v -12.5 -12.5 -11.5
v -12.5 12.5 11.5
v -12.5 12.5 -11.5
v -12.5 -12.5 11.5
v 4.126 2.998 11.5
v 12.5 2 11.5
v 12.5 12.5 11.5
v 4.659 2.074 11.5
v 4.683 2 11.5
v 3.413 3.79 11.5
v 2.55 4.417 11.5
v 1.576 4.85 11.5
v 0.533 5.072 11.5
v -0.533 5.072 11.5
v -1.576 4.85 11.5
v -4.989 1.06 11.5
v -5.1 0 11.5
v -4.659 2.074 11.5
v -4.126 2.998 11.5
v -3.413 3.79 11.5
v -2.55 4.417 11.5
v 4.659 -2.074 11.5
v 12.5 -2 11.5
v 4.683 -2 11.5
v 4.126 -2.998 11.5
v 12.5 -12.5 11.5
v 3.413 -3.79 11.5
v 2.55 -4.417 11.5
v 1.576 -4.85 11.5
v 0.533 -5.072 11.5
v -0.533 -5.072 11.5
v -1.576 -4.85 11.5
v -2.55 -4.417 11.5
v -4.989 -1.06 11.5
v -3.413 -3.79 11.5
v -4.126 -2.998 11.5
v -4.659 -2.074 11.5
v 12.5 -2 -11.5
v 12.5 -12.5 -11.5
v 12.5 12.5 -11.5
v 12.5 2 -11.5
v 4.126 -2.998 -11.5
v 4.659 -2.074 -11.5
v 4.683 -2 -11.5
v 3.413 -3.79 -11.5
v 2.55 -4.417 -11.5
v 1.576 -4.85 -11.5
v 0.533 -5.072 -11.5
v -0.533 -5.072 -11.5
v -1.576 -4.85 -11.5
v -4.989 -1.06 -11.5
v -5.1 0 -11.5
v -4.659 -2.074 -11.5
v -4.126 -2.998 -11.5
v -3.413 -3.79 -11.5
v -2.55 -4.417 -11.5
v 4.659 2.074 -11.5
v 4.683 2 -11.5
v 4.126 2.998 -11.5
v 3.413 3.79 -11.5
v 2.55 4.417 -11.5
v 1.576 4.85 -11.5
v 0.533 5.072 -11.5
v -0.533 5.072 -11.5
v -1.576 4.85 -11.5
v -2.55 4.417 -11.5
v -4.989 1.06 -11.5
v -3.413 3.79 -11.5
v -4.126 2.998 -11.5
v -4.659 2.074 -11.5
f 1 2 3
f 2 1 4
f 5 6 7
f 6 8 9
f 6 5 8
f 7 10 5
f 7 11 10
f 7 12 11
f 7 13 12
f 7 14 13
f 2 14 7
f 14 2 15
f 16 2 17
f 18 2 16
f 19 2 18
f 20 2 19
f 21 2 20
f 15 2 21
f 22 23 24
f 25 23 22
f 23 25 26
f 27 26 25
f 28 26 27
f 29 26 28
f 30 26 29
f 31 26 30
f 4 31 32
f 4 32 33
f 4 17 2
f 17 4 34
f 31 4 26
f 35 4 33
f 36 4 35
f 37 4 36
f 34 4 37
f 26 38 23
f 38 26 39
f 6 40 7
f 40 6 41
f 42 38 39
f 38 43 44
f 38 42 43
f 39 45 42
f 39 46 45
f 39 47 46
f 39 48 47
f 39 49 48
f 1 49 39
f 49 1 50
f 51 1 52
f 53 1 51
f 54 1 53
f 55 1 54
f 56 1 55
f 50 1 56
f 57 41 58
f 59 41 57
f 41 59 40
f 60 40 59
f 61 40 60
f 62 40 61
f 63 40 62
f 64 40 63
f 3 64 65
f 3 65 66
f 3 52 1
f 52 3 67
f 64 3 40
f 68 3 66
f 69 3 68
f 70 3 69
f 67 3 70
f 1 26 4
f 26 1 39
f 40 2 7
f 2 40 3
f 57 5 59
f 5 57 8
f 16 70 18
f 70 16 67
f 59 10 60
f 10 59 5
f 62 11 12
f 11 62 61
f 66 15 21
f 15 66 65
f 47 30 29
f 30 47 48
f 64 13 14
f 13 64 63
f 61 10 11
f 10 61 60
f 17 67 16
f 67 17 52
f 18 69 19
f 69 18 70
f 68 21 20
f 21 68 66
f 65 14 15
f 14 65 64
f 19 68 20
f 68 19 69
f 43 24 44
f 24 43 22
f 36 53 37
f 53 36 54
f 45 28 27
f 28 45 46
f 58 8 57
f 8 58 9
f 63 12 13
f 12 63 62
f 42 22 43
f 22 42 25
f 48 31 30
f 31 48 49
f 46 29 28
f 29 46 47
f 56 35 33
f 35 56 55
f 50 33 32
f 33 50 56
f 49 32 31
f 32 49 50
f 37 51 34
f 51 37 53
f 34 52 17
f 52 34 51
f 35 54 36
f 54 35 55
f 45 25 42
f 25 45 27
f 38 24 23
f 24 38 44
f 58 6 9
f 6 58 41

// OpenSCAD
body = 25;          // X,Y size of the body
tc_len = 23;        // Thermocouple length
tc_dia = 10;        // Thermocouple diameter
id_tol = 0.20/2;    // Inner diameter tolerance

difference () {
    // Make a core body that will hold the probe
    cube([body,body,tc_len], center=true);
    
    // Cutout the diameter of the probe
    cylinder(h=tc_len+10, r=tc_dia/2+id_tol, center=true, $fn=30);    
    
    // Make a cutout to slide over the wire
    translate([10,0,0])
        cube([body/2,4,tc_len+10], center=true);
}
